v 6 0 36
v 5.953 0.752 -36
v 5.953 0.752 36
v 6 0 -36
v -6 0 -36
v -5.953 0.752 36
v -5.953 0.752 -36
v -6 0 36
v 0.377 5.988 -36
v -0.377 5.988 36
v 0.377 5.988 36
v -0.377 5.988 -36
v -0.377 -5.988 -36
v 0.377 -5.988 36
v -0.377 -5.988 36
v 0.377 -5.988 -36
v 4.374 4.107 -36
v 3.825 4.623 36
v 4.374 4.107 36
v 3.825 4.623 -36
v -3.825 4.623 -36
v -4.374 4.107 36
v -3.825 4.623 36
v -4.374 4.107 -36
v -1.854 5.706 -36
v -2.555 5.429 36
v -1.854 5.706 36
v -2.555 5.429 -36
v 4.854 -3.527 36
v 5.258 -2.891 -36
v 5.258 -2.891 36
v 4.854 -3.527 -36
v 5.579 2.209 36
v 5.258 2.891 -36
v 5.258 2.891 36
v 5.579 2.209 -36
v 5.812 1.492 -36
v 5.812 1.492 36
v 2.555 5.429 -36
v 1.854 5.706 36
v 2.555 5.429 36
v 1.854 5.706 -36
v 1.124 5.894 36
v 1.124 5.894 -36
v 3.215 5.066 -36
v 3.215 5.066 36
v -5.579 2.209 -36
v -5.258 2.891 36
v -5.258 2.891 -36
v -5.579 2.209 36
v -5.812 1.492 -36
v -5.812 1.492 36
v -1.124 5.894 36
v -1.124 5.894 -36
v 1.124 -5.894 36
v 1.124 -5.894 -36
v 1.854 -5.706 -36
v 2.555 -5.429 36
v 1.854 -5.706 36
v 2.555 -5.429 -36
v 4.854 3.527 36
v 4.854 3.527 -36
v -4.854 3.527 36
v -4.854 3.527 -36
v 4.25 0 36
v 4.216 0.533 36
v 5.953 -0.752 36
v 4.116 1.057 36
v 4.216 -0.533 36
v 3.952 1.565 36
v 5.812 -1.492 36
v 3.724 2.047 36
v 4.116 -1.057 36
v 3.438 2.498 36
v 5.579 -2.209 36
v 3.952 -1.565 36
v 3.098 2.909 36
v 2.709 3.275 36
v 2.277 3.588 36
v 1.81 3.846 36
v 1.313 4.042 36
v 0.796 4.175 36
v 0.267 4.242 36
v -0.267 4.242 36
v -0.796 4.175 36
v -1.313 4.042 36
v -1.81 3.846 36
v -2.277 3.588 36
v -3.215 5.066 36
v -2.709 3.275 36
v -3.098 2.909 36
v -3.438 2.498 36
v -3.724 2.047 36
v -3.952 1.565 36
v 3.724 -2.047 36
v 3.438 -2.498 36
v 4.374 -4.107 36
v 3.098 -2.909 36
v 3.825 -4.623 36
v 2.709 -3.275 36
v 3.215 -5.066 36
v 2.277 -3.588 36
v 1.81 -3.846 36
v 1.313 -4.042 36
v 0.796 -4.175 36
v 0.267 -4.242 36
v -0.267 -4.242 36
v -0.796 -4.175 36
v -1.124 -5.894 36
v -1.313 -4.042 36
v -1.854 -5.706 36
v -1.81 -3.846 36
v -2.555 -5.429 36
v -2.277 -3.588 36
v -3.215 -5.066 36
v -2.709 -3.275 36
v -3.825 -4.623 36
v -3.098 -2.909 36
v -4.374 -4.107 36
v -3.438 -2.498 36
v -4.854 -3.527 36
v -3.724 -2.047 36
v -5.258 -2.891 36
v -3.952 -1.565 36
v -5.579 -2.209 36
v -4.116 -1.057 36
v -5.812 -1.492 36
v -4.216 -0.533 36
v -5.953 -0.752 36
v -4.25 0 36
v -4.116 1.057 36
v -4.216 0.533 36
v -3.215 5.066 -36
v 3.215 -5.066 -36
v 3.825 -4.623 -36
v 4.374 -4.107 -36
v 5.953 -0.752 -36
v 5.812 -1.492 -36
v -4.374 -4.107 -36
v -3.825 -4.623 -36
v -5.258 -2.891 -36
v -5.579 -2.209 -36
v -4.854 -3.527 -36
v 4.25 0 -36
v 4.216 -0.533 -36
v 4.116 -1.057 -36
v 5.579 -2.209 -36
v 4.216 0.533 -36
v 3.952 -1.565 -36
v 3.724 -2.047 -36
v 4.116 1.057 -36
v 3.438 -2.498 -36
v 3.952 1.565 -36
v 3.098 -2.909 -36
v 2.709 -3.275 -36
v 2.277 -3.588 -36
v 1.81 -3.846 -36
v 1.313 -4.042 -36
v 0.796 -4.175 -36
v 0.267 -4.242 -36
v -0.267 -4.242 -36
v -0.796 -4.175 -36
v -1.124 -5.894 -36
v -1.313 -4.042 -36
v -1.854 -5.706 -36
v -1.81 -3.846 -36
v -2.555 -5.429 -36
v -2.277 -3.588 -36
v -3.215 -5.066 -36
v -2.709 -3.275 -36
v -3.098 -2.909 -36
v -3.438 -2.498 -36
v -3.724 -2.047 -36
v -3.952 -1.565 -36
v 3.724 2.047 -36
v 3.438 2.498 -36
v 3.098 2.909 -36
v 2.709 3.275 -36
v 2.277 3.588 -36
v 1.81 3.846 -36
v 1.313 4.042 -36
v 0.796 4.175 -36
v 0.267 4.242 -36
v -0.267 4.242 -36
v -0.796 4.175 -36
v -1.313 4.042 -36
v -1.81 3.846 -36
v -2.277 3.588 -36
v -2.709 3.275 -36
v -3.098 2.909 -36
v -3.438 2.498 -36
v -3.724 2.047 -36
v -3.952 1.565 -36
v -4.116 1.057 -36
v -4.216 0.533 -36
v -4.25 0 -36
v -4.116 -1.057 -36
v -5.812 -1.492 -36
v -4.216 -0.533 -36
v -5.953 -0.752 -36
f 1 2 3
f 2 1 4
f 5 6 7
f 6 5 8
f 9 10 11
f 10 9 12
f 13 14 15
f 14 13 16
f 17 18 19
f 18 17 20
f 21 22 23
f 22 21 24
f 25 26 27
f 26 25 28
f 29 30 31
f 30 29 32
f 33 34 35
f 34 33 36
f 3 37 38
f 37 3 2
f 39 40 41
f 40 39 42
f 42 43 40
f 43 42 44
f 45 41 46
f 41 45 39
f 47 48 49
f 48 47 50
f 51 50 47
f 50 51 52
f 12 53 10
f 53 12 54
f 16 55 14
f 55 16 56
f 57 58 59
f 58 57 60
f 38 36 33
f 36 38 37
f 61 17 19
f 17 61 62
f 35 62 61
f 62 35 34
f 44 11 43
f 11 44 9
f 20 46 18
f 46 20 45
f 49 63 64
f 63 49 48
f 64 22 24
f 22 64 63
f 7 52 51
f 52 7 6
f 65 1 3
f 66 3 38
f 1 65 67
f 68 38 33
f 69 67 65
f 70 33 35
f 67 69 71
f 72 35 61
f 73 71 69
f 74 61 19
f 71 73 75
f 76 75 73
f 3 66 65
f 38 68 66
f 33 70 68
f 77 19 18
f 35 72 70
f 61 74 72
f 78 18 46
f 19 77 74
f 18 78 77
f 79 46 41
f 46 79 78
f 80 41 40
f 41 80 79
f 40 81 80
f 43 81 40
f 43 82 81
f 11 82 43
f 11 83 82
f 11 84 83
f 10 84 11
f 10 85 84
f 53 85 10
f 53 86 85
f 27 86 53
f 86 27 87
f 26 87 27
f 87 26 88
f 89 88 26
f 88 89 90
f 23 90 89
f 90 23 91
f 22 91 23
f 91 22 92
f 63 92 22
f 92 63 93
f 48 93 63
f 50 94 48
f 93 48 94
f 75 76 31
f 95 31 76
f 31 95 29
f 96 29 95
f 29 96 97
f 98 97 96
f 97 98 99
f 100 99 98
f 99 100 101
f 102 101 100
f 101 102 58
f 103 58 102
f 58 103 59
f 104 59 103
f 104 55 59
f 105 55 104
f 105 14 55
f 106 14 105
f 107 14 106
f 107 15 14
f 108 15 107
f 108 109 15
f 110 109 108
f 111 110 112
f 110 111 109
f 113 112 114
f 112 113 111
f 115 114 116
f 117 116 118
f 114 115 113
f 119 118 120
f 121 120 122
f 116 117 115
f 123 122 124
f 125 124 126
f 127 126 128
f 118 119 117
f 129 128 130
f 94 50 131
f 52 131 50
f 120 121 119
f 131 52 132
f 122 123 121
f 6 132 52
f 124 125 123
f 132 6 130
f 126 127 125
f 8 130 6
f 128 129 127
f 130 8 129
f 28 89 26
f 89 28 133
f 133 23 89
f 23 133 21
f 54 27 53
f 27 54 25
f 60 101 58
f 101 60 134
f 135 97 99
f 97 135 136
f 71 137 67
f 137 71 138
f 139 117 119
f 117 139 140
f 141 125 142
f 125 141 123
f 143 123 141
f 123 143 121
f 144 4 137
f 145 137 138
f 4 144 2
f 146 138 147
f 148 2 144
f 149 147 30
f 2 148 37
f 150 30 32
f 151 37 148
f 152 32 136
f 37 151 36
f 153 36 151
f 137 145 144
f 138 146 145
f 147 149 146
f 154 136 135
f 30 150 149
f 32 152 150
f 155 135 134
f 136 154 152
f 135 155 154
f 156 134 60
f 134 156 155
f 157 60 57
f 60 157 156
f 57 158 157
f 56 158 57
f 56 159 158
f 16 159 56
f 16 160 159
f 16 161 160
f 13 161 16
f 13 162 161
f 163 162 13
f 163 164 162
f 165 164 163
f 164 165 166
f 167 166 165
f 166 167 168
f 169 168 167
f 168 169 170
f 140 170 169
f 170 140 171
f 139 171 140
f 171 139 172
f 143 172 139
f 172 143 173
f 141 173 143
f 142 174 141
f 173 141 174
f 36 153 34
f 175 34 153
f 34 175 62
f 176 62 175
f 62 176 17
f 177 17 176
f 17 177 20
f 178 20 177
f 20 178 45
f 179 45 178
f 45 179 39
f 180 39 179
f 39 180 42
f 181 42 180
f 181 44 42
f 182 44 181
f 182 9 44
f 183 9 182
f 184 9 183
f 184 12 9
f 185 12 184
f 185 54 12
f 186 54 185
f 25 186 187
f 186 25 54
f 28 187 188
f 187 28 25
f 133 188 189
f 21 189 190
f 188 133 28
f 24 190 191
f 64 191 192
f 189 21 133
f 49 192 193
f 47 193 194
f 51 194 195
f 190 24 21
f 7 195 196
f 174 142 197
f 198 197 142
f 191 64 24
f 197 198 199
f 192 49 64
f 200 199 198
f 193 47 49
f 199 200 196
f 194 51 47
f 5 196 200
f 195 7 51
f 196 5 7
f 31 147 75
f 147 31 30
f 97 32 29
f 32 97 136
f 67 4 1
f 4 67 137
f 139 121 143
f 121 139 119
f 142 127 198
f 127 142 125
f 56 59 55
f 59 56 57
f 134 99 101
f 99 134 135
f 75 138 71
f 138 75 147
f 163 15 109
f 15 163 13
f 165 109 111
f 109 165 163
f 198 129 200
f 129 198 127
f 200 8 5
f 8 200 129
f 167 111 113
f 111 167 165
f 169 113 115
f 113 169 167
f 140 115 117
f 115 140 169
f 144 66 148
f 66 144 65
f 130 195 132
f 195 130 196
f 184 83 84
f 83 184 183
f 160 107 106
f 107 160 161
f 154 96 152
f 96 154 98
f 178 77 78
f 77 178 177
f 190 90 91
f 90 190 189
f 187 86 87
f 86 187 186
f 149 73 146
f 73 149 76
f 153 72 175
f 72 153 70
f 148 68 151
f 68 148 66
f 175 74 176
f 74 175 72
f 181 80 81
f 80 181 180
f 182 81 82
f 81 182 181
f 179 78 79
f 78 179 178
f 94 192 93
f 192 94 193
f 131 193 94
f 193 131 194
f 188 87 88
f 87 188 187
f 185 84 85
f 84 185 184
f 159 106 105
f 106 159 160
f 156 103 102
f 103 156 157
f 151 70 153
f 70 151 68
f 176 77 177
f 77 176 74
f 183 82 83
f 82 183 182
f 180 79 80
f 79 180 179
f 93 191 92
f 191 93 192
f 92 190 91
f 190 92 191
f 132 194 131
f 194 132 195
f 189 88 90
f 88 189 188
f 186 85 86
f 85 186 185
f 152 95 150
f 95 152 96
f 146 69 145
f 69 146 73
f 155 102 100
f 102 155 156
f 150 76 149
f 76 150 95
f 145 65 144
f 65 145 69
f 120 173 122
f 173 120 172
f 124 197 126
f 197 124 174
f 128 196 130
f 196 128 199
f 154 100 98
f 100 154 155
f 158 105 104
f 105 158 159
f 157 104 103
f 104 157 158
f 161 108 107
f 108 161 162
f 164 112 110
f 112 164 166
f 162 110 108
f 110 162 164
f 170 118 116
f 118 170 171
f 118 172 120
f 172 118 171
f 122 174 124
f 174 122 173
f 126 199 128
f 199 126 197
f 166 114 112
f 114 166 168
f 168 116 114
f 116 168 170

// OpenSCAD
$fn = 50;


difference() {
	union() {
		translate(v = [0, 0, -36.0000000000]) {
			cylinder(h = 72, r = 6.0000000000);
		}
	}
	union() {
		translate(v = [0, 0, -100.0000000000]) {
			cylinder(h = 200, r = 4.2500000000);
		}
	}
}
